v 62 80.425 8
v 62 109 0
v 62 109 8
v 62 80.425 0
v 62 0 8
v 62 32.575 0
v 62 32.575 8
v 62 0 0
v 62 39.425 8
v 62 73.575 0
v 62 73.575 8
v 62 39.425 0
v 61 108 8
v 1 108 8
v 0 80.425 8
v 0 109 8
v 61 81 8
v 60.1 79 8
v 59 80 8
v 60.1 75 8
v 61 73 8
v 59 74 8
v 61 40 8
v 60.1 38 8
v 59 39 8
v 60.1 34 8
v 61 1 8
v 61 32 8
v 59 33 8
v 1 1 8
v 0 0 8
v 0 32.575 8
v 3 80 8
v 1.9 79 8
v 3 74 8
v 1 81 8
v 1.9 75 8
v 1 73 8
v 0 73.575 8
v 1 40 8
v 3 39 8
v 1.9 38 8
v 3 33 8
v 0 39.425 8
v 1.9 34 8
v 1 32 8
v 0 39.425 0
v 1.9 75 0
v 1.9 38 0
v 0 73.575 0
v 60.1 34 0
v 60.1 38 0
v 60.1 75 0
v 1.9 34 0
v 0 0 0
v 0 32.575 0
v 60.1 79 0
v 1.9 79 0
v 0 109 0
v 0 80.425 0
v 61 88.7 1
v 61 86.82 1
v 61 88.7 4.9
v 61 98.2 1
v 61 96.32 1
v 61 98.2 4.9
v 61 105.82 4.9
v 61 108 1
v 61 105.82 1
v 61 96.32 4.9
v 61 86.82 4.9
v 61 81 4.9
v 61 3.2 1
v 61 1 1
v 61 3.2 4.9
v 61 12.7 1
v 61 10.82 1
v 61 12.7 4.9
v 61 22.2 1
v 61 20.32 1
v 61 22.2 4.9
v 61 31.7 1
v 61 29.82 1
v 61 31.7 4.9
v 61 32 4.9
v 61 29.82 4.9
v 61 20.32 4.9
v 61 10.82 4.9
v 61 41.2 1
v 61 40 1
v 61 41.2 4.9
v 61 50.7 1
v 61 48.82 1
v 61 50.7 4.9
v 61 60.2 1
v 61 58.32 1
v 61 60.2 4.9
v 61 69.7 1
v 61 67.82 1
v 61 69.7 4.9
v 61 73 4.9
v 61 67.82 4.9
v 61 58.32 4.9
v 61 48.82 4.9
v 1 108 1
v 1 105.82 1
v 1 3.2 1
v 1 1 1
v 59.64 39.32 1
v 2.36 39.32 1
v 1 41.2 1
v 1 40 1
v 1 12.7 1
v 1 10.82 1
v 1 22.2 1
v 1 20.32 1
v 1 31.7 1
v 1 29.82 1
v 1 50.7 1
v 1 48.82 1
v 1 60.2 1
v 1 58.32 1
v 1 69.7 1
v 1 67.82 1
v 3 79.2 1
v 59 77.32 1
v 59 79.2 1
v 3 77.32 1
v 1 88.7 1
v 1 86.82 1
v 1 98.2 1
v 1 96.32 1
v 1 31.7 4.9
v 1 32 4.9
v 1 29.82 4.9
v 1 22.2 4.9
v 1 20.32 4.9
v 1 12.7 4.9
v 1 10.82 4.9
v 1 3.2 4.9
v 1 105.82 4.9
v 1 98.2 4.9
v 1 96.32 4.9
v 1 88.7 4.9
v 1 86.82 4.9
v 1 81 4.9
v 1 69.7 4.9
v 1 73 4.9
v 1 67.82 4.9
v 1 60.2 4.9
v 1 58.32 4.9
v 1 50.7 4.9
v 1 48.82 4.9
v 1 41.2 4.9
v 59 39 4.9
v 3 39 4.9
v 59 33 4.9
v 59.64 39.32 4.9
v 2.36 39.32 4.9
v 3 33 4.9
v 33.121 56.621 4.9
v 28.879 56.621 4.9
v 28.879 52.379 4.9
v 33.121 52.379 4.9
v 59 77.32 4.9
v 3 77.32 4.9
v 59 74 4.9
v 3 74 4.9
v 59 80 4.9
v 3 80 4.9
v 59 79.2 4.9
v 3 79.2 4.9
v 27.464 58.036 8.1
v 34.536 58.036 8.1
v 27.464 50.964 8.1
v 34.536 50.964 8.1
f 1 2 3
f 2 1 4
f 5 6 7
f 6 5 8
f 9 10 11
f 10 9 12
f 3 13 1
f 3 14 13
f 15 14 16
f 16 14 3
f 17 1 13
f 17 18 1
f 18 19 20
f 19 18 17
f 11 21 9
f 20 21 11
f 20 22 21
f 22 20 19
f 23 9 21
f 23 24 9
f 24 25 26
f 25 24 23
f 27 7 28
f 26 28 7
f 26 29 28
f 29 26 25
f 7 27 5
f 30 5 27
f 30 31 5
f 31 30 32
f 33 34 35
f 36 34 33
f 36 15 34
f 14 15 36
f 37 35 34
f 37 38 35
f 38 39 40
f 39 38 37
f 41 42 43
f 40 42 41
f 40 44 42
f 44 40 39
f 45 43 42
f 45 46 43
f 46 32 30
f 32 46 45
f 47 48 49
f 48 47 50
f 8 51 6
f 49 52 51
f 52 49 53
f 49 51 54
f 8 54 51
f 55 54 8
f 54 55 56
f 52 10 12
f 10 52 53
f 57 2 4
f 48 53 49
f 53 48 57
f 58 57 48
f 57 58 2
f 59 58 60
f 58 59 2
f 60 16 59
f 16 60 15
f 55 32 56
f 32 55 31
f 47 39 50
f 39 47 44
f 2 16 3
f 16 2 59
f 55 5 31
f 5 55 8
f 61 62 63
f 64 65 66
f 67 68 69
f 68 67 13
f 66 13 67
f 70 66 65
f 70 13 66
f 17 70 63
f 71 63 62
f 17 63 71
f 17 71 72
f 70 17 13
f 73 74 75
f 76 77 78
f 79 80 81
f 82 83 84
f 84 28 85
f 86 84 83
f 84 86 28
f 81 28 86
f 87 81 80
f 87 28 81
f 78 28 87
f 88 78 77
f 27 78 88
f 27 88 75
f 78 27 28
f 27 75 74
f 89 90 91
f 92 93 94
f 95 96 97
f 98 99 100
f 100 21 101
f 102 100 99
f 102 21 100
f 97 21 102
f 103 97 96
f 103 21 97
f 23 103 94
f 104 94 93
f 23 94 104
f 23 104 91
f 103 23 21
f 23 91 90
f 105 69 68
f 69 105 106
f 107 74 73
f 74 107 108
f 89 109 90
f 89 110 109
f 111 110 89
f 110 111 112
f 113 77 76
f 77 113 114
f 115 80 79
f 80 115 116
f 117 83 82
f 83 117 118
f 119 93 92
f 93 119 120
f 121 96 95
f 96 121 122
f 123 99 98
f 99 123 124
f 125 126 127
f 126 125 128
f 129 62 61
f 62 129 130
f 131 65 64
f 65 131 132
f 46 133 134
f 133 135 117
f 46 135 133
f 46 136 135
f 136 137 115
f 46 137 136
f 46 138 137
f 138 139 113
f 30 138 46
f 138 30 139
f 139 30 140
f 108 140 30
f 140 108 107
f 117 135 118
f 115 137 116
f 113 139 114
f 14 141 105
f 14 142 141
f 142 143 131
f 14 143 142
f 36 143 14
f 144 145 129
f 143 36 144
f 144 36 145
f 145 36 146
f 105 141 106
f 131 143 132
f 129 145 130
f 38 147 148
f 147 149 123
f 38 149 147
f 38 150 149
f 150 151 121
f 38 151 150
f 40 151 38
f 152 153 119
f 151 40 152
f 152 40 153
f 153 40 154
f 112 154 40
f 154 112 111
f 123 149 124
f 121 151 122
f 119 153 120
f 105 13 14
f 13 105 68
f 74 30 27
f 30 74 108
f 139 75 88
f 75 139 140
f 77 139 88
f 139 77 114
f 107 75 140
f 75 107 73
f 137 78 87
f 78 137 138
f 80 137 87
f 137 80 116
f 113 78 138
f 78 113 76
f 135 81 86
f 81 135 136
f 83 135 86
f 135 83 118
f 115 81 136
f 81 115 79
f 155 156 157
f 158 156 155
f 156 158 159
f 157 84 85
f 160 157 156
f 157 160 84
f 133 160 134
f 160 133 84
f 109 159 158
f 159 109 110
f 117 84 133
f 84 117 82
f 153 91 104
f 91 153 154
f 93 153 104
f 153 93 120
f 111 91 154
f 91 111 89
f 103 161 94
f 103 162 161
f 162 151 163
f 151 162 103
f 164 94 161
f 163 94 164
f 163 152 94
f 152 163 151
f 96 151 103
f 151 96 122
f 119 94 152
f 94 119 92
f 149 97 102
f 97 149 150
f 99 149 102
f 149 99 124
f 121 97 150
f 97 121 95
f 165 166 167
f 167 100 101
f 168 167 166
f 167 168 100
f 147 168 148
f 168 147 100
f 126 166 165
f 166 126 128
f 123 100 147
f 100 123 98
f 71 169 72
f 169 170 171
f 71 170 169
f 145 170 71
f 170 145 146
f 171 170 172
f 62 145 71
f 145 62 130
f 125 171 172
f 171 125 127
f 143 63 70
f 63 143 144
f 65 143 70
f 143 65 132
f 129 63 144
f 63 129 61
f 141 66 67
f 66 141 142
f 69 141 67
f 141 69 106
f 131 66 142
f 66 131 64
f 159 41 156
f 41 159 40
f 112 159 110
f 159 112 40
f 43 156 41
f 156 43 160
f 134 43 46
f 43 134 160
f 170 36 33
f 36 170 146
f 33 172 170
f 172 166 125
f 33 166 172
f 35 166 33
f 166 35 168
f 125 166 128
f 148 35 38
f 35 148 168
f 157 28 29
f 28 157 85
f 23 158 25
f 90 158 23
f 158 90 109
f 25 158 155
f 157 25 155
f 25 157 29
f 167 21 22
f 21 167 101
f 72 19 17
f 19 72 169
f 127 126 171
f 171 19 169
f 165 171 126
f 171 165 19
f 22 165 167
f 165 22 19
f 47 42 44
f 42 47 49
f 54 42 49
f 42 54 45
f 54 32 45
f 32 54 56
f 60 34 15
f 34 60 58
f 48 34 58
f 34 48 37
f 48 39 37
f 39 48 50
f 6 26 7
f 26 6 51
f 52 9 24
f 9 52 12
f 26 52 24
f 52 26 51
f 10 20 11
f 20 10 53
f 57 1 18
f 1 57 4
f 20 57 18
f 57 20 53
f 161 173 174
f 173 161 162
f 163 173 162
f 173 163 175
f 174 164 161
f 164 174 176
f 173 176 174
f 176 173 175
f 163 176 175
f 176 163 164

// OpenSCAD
eps = 0.1;
eps2 = eps + eps;


breite = 62;
tiefe = 109;
hoehe = 8;
innen = hoehe - 1;

wand = 1;
wand2 = wand + wand;

// trapezförmig
module auslassung()
{
translate([0,0,-eps]) linear_extrude( hoehe + eps2) polygon(points=[[0,3.5],[2,2],[2,-2],[0,-3.5]]);
}


// Wand für Auslassung
module auslassung_wand()
{
    linear_extrude( hoehe) polygon(points=[[0,3.5+wand],[2+wand,2+wand],[2+wand,-2-wand],[0,-3.5-wand]]);
}


// Auflage für Schaltkreise
module dip_schiene(n)
{
    midspace = 0;//5;
    start = 3.2;
    
    ms = ( n > 4) ? midspace : 0;
     
    translate([0, start + ms + 9.5*n, wand-eps]) cube([ breite, 7.62, 4]);
}

// Anfasser
module grab2()
{
    $fn = 4;
    
    translate([ breite/2, tiefe/2, eps])
    
    rotate([ 0, 0, 45])
    cylinder( h = hoehe, r1 = 0, r2 = 5);
}

    
// alles zusammenbauen
difference()
{
    union()
    {
        difference()
        {
        // Hauptkörper
        cube([ breite, tiefe, hoehe]);
            
        // Innenkörper
        translate([ wand, wand, hoehe-innen]) cube([ breite-wand2, tiefe-wand2, innen+eps]);
        }
    
        for(i = [0:10])
        {
            dip_schiene(i);
        }
        
        translate([0, 36, 0]) auslassung_wand();
        translate([0, 36+41, 0]) auslassung_wand();
        translate([breite, 36, 0]) mirror([1,0,0]) auslassung_wand();
        translate([breite, 36+41, 0]) mirror([1,0,0]) auslassung_wand();
    }
    
    // Auslassungen bei +35 und +41 mm
    // am Rand
    translate([-eps, 36, 0]) auslassung();
    translate([-eps, 36+41, 0]) auslassung();
    translate([breite+eps, 36, 0]) mirror([1,0,0]) auslassung();
    translate([breite+eps, 36+41, 0]) mirror([1,0,0]) auslassung();
}

grab2();
